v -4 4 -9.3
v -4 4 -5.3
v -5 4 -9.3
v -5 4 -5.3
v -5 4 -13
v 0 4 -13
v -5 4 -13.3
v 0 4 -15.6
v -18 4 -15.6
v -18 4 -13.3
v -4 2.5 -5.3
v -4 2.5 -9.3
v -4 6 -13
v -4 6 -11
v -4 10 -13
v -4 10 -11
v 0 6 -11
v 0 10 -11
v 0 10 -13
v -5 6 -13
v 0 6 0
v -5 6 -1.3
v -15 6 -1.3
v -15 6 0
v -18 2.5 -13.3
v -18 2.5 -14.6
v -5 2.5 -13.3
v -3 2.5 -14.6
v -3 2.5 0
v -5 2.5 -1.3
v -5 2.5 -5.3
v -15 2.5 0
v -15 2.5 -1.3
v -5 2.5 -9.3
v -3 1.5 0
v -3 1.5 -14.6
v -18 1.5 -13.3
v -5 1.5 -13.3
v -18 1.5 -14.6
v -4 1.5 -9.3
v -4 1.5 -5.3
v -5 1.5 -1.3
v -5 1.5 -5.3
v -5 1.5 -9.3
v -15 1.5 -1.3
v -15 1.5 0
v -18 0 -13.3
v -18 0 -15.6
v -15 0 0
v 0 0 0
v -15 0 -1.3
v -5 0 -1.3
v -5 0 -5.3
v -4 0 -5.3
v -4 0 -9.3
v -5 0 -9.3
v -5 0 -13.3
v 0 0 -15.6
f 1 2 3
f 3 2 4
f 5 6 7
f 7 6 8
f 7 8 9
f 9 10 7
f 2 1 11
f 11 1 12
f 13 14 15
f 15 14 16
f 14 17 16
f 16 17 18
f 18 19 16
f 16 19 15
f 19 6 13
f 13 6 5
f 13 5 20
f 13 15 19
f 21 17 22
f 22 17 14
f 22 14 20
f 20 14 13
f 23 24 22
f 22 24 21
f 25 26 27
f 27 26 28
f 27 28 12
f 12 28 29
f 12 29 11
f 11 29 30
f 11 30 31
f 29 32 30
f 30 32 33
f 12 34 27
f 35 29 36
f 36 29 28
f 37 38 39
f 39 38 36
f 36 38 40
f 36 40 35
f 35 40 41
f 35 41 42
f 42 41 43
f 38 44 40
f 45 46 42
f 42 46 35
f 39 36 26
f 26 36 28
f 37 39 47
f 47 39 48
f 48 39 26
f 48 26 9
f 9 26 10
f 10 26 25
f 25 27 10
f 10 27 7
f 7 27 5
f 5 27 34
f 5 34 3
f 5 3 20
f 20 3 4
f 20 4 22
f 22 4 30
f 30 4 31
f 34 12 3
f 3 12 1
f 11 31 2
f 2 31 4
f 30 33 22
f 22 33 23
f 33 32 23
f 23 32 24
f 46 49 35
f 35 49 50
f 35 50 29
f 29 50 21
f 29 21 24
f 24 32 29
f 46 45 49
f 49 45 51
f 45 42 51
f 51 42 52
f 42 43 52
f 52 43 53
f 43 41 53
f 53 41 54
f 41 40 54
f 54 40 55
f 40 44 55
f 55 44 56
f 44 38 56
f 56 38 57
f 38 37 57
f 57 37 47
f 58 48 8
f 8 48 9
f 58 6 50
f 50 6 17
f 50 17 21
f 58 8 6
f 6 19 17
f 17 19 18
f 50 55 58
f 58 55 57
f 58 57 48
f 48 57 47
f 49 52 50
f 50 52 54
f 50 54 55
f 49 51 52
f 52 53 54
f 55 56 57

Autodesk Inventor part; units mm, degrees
ref_plane "YZ Plane" through (0, 0, 0) normal (1, 0, 0) x (0, 1, 0)
ref_plane "XZ Plane" through (0, 0, 0) normal (0, 1, 0) x (-1, 0, 0)
ref_plane "XY Plane" through (0, 0, 0) normal (0, 0, 1) x (1, 0, 0)
sketch "스케치1" plane through (0, 0, 0) normal (0, 1, 0) x (-1, 0, 0)
  line L0 (0, 0) -> (0, -15.6)
  line L1 (0, -15.6) -> (18, -15.6)
  line L2 (0, 0) -> (15, 0)
  line L3 (15, 0) -> (15, -1.3)
  line L4 (15, -1.3) -> (5, -1.3)
  line L5 (5, -1.3) -> (5, -5.3)
  line L6 (5, -5.3) -> (4, -5.3)
  line L7 (4, -5.3) -> (4, -9.3)
  line L8 (4, -9.3) -> (5, -9.3)
  line L9 (5, -9.3) -> (5, -13.3)
  line L10 (5, -13.3) -> (18, -13.3)
  line L11 (18, -13.3) -> (18, -15.6)
  line L12 (3, 0) -> (19.1, 0) construction
  line L13 (19.1, 0) -> (19.1, -14.6) construction
  line L14 (19.1, -14.6) -> (3, -14.6) construction
  line L15 (3, -14.6) -> (3, 0) construction
  line L16 (19.1, -7.3) -> (3, -7.3) construction
  dimension "d0" = 15.6
  dimension "d1" = 18
  dimension "d2" = 15
  dimension "d3" = 1.3
  dimension "d4" = 10
  dimension "d5" = 4
  dimension "d6" = 1
  dimension "d7" = 4
  dimension "d8" = 1
  dimension "d9" = 4
  dimension "d10" = 13
  dimension "d18" = 16.1
  dimension "d19" = 14.6
  dimension "d20" = 3
  dimension "d21" = 1
extrude "돌출1" add sketch "스케치1" along normal blind 4
sketch "스케치2" plane through (-15, 0, 0) normal (0, 0, 1) x (1, 0, 0)
  line L0 (-3, 1.5) -> (12, 1.5)
  line L1 (12, 1.5) -> (12, 2.5)
  line L2 (12, 2.5) -> (-3, 2.5)
  line L3 (-3, 2.5) -> (-3, 1.5)
  line L4 (15, 0) -> (15, 4) projected
  line L5 (0, 0) -> (0, 4) projected
  line L6 (0, 0) -> (15, 0) projected
  line L7 (-3, 0) -> (-3, 4) projected
  dimension "d13" = 1
  dimension "d14" = 3
  dimension "d15" = 1.5
extrude "돌출2" cut sketch "스케치2" against normal blind 14.6
sketch "스케치3" plane through (0, 4, 0) normal (0, 1, 0) x (1, 0, 0)
  line L0 (0, 0) -> (0, 15.6) projected
  line L1 (0, 15.6) -> (-18, 15.6) projected
  line L2 (0, 0) -> (-4, 0)
  line L3 (-4, 0) -> (-4, 13)
  line L4 (-4, 13) -> (0, 13)
  line L5 (0, 13) -> (0, 0)
  line L6 (-15, 0) -> (0, 0) projected
  point P0 (-3, 0)
  dimension "d22" = 4
  dimension "d23" = 13
extrude "돌출3" add sketch "스케치3" along normal blind 2
sketch "스케치4" plane through (0, 6, 0) normal (0, 1, 0) x (1, 0, 0)
  line L0 (0, 0) -> (0, 15.6) projected
  line L1 (-4, 13) -> (0, 13)
  line L2 (0, 13) -> (0, 11)
  line L3 (0, 11) -> (-4, 11)
  line L4 (-4, 11) -> (-4, 13)
  line L5 (0, 0) -> (0, 13) projected
  line L6 (0, 13) -> (-4, 13) projected
  line L7 (-4, 13) -> (-4, 0) projected
  line L8 (-4, 0) -> (0, 0) projected
  dimension "d26" = 2
extrude "돌출4" add sketch "스케치4" along normal blind 4 contours L3 L4 L1 L0
sketch "스케치5" plane through (0, 4, 0) normal (0, 1, 0) x (1, 0, 0)
  line L0 (-4, 0) -> (-4, 5.3) projected
  line L1 (-4, 5.3) -> (-5, 5.3) projected
  line L2 (-5, 5.3) -> (-5, 1.3) projected
  line L3 (-5, 1.3) -> (-15, 1.3) projected
  line L4 (-15, 1.3) -> (-15, 0) projected
  line L5 (-15, 0) -> (-4, 0) projected
  line L6 (-4, 9.3) -> (-4, 13) projected
  line L7 (-4, 13) -> (0, 13) projected
  line L8 (0, 13) -> (0, 15.6) projected
  line L9 (0, 15.6) -> (-18, 15.6) projected
  line L10 (-18, 15.6) -> (-18, 13.3) projected
  line L11 (-18, 13.3) -> (-5, 13.3) projected
  line L12 (-5, 13.3) -> (-5, 9.3) projected
  line L13 (-5, 9.3) -> (-4, 9.3) projected
  line L14 (-4, 0) -> (-5, 0)
  line L15 (-5, 0) -> (-5, 13)
  line L16 (-5, 13) -> (-4, 13)
  line L17 (-4, 13) -> (-4, 0)
  point P0 (0, 0)
  dimension "d31" = 13
extrude "돌출5" add sketch "스케치5" along normal blind 2 contours L5 L15 L2 L1 L0 | L1 L15 L13 L17 | L5 L4 L3 L15 | L13 L12 L16 L6
properties part number "PCB_Holder"
